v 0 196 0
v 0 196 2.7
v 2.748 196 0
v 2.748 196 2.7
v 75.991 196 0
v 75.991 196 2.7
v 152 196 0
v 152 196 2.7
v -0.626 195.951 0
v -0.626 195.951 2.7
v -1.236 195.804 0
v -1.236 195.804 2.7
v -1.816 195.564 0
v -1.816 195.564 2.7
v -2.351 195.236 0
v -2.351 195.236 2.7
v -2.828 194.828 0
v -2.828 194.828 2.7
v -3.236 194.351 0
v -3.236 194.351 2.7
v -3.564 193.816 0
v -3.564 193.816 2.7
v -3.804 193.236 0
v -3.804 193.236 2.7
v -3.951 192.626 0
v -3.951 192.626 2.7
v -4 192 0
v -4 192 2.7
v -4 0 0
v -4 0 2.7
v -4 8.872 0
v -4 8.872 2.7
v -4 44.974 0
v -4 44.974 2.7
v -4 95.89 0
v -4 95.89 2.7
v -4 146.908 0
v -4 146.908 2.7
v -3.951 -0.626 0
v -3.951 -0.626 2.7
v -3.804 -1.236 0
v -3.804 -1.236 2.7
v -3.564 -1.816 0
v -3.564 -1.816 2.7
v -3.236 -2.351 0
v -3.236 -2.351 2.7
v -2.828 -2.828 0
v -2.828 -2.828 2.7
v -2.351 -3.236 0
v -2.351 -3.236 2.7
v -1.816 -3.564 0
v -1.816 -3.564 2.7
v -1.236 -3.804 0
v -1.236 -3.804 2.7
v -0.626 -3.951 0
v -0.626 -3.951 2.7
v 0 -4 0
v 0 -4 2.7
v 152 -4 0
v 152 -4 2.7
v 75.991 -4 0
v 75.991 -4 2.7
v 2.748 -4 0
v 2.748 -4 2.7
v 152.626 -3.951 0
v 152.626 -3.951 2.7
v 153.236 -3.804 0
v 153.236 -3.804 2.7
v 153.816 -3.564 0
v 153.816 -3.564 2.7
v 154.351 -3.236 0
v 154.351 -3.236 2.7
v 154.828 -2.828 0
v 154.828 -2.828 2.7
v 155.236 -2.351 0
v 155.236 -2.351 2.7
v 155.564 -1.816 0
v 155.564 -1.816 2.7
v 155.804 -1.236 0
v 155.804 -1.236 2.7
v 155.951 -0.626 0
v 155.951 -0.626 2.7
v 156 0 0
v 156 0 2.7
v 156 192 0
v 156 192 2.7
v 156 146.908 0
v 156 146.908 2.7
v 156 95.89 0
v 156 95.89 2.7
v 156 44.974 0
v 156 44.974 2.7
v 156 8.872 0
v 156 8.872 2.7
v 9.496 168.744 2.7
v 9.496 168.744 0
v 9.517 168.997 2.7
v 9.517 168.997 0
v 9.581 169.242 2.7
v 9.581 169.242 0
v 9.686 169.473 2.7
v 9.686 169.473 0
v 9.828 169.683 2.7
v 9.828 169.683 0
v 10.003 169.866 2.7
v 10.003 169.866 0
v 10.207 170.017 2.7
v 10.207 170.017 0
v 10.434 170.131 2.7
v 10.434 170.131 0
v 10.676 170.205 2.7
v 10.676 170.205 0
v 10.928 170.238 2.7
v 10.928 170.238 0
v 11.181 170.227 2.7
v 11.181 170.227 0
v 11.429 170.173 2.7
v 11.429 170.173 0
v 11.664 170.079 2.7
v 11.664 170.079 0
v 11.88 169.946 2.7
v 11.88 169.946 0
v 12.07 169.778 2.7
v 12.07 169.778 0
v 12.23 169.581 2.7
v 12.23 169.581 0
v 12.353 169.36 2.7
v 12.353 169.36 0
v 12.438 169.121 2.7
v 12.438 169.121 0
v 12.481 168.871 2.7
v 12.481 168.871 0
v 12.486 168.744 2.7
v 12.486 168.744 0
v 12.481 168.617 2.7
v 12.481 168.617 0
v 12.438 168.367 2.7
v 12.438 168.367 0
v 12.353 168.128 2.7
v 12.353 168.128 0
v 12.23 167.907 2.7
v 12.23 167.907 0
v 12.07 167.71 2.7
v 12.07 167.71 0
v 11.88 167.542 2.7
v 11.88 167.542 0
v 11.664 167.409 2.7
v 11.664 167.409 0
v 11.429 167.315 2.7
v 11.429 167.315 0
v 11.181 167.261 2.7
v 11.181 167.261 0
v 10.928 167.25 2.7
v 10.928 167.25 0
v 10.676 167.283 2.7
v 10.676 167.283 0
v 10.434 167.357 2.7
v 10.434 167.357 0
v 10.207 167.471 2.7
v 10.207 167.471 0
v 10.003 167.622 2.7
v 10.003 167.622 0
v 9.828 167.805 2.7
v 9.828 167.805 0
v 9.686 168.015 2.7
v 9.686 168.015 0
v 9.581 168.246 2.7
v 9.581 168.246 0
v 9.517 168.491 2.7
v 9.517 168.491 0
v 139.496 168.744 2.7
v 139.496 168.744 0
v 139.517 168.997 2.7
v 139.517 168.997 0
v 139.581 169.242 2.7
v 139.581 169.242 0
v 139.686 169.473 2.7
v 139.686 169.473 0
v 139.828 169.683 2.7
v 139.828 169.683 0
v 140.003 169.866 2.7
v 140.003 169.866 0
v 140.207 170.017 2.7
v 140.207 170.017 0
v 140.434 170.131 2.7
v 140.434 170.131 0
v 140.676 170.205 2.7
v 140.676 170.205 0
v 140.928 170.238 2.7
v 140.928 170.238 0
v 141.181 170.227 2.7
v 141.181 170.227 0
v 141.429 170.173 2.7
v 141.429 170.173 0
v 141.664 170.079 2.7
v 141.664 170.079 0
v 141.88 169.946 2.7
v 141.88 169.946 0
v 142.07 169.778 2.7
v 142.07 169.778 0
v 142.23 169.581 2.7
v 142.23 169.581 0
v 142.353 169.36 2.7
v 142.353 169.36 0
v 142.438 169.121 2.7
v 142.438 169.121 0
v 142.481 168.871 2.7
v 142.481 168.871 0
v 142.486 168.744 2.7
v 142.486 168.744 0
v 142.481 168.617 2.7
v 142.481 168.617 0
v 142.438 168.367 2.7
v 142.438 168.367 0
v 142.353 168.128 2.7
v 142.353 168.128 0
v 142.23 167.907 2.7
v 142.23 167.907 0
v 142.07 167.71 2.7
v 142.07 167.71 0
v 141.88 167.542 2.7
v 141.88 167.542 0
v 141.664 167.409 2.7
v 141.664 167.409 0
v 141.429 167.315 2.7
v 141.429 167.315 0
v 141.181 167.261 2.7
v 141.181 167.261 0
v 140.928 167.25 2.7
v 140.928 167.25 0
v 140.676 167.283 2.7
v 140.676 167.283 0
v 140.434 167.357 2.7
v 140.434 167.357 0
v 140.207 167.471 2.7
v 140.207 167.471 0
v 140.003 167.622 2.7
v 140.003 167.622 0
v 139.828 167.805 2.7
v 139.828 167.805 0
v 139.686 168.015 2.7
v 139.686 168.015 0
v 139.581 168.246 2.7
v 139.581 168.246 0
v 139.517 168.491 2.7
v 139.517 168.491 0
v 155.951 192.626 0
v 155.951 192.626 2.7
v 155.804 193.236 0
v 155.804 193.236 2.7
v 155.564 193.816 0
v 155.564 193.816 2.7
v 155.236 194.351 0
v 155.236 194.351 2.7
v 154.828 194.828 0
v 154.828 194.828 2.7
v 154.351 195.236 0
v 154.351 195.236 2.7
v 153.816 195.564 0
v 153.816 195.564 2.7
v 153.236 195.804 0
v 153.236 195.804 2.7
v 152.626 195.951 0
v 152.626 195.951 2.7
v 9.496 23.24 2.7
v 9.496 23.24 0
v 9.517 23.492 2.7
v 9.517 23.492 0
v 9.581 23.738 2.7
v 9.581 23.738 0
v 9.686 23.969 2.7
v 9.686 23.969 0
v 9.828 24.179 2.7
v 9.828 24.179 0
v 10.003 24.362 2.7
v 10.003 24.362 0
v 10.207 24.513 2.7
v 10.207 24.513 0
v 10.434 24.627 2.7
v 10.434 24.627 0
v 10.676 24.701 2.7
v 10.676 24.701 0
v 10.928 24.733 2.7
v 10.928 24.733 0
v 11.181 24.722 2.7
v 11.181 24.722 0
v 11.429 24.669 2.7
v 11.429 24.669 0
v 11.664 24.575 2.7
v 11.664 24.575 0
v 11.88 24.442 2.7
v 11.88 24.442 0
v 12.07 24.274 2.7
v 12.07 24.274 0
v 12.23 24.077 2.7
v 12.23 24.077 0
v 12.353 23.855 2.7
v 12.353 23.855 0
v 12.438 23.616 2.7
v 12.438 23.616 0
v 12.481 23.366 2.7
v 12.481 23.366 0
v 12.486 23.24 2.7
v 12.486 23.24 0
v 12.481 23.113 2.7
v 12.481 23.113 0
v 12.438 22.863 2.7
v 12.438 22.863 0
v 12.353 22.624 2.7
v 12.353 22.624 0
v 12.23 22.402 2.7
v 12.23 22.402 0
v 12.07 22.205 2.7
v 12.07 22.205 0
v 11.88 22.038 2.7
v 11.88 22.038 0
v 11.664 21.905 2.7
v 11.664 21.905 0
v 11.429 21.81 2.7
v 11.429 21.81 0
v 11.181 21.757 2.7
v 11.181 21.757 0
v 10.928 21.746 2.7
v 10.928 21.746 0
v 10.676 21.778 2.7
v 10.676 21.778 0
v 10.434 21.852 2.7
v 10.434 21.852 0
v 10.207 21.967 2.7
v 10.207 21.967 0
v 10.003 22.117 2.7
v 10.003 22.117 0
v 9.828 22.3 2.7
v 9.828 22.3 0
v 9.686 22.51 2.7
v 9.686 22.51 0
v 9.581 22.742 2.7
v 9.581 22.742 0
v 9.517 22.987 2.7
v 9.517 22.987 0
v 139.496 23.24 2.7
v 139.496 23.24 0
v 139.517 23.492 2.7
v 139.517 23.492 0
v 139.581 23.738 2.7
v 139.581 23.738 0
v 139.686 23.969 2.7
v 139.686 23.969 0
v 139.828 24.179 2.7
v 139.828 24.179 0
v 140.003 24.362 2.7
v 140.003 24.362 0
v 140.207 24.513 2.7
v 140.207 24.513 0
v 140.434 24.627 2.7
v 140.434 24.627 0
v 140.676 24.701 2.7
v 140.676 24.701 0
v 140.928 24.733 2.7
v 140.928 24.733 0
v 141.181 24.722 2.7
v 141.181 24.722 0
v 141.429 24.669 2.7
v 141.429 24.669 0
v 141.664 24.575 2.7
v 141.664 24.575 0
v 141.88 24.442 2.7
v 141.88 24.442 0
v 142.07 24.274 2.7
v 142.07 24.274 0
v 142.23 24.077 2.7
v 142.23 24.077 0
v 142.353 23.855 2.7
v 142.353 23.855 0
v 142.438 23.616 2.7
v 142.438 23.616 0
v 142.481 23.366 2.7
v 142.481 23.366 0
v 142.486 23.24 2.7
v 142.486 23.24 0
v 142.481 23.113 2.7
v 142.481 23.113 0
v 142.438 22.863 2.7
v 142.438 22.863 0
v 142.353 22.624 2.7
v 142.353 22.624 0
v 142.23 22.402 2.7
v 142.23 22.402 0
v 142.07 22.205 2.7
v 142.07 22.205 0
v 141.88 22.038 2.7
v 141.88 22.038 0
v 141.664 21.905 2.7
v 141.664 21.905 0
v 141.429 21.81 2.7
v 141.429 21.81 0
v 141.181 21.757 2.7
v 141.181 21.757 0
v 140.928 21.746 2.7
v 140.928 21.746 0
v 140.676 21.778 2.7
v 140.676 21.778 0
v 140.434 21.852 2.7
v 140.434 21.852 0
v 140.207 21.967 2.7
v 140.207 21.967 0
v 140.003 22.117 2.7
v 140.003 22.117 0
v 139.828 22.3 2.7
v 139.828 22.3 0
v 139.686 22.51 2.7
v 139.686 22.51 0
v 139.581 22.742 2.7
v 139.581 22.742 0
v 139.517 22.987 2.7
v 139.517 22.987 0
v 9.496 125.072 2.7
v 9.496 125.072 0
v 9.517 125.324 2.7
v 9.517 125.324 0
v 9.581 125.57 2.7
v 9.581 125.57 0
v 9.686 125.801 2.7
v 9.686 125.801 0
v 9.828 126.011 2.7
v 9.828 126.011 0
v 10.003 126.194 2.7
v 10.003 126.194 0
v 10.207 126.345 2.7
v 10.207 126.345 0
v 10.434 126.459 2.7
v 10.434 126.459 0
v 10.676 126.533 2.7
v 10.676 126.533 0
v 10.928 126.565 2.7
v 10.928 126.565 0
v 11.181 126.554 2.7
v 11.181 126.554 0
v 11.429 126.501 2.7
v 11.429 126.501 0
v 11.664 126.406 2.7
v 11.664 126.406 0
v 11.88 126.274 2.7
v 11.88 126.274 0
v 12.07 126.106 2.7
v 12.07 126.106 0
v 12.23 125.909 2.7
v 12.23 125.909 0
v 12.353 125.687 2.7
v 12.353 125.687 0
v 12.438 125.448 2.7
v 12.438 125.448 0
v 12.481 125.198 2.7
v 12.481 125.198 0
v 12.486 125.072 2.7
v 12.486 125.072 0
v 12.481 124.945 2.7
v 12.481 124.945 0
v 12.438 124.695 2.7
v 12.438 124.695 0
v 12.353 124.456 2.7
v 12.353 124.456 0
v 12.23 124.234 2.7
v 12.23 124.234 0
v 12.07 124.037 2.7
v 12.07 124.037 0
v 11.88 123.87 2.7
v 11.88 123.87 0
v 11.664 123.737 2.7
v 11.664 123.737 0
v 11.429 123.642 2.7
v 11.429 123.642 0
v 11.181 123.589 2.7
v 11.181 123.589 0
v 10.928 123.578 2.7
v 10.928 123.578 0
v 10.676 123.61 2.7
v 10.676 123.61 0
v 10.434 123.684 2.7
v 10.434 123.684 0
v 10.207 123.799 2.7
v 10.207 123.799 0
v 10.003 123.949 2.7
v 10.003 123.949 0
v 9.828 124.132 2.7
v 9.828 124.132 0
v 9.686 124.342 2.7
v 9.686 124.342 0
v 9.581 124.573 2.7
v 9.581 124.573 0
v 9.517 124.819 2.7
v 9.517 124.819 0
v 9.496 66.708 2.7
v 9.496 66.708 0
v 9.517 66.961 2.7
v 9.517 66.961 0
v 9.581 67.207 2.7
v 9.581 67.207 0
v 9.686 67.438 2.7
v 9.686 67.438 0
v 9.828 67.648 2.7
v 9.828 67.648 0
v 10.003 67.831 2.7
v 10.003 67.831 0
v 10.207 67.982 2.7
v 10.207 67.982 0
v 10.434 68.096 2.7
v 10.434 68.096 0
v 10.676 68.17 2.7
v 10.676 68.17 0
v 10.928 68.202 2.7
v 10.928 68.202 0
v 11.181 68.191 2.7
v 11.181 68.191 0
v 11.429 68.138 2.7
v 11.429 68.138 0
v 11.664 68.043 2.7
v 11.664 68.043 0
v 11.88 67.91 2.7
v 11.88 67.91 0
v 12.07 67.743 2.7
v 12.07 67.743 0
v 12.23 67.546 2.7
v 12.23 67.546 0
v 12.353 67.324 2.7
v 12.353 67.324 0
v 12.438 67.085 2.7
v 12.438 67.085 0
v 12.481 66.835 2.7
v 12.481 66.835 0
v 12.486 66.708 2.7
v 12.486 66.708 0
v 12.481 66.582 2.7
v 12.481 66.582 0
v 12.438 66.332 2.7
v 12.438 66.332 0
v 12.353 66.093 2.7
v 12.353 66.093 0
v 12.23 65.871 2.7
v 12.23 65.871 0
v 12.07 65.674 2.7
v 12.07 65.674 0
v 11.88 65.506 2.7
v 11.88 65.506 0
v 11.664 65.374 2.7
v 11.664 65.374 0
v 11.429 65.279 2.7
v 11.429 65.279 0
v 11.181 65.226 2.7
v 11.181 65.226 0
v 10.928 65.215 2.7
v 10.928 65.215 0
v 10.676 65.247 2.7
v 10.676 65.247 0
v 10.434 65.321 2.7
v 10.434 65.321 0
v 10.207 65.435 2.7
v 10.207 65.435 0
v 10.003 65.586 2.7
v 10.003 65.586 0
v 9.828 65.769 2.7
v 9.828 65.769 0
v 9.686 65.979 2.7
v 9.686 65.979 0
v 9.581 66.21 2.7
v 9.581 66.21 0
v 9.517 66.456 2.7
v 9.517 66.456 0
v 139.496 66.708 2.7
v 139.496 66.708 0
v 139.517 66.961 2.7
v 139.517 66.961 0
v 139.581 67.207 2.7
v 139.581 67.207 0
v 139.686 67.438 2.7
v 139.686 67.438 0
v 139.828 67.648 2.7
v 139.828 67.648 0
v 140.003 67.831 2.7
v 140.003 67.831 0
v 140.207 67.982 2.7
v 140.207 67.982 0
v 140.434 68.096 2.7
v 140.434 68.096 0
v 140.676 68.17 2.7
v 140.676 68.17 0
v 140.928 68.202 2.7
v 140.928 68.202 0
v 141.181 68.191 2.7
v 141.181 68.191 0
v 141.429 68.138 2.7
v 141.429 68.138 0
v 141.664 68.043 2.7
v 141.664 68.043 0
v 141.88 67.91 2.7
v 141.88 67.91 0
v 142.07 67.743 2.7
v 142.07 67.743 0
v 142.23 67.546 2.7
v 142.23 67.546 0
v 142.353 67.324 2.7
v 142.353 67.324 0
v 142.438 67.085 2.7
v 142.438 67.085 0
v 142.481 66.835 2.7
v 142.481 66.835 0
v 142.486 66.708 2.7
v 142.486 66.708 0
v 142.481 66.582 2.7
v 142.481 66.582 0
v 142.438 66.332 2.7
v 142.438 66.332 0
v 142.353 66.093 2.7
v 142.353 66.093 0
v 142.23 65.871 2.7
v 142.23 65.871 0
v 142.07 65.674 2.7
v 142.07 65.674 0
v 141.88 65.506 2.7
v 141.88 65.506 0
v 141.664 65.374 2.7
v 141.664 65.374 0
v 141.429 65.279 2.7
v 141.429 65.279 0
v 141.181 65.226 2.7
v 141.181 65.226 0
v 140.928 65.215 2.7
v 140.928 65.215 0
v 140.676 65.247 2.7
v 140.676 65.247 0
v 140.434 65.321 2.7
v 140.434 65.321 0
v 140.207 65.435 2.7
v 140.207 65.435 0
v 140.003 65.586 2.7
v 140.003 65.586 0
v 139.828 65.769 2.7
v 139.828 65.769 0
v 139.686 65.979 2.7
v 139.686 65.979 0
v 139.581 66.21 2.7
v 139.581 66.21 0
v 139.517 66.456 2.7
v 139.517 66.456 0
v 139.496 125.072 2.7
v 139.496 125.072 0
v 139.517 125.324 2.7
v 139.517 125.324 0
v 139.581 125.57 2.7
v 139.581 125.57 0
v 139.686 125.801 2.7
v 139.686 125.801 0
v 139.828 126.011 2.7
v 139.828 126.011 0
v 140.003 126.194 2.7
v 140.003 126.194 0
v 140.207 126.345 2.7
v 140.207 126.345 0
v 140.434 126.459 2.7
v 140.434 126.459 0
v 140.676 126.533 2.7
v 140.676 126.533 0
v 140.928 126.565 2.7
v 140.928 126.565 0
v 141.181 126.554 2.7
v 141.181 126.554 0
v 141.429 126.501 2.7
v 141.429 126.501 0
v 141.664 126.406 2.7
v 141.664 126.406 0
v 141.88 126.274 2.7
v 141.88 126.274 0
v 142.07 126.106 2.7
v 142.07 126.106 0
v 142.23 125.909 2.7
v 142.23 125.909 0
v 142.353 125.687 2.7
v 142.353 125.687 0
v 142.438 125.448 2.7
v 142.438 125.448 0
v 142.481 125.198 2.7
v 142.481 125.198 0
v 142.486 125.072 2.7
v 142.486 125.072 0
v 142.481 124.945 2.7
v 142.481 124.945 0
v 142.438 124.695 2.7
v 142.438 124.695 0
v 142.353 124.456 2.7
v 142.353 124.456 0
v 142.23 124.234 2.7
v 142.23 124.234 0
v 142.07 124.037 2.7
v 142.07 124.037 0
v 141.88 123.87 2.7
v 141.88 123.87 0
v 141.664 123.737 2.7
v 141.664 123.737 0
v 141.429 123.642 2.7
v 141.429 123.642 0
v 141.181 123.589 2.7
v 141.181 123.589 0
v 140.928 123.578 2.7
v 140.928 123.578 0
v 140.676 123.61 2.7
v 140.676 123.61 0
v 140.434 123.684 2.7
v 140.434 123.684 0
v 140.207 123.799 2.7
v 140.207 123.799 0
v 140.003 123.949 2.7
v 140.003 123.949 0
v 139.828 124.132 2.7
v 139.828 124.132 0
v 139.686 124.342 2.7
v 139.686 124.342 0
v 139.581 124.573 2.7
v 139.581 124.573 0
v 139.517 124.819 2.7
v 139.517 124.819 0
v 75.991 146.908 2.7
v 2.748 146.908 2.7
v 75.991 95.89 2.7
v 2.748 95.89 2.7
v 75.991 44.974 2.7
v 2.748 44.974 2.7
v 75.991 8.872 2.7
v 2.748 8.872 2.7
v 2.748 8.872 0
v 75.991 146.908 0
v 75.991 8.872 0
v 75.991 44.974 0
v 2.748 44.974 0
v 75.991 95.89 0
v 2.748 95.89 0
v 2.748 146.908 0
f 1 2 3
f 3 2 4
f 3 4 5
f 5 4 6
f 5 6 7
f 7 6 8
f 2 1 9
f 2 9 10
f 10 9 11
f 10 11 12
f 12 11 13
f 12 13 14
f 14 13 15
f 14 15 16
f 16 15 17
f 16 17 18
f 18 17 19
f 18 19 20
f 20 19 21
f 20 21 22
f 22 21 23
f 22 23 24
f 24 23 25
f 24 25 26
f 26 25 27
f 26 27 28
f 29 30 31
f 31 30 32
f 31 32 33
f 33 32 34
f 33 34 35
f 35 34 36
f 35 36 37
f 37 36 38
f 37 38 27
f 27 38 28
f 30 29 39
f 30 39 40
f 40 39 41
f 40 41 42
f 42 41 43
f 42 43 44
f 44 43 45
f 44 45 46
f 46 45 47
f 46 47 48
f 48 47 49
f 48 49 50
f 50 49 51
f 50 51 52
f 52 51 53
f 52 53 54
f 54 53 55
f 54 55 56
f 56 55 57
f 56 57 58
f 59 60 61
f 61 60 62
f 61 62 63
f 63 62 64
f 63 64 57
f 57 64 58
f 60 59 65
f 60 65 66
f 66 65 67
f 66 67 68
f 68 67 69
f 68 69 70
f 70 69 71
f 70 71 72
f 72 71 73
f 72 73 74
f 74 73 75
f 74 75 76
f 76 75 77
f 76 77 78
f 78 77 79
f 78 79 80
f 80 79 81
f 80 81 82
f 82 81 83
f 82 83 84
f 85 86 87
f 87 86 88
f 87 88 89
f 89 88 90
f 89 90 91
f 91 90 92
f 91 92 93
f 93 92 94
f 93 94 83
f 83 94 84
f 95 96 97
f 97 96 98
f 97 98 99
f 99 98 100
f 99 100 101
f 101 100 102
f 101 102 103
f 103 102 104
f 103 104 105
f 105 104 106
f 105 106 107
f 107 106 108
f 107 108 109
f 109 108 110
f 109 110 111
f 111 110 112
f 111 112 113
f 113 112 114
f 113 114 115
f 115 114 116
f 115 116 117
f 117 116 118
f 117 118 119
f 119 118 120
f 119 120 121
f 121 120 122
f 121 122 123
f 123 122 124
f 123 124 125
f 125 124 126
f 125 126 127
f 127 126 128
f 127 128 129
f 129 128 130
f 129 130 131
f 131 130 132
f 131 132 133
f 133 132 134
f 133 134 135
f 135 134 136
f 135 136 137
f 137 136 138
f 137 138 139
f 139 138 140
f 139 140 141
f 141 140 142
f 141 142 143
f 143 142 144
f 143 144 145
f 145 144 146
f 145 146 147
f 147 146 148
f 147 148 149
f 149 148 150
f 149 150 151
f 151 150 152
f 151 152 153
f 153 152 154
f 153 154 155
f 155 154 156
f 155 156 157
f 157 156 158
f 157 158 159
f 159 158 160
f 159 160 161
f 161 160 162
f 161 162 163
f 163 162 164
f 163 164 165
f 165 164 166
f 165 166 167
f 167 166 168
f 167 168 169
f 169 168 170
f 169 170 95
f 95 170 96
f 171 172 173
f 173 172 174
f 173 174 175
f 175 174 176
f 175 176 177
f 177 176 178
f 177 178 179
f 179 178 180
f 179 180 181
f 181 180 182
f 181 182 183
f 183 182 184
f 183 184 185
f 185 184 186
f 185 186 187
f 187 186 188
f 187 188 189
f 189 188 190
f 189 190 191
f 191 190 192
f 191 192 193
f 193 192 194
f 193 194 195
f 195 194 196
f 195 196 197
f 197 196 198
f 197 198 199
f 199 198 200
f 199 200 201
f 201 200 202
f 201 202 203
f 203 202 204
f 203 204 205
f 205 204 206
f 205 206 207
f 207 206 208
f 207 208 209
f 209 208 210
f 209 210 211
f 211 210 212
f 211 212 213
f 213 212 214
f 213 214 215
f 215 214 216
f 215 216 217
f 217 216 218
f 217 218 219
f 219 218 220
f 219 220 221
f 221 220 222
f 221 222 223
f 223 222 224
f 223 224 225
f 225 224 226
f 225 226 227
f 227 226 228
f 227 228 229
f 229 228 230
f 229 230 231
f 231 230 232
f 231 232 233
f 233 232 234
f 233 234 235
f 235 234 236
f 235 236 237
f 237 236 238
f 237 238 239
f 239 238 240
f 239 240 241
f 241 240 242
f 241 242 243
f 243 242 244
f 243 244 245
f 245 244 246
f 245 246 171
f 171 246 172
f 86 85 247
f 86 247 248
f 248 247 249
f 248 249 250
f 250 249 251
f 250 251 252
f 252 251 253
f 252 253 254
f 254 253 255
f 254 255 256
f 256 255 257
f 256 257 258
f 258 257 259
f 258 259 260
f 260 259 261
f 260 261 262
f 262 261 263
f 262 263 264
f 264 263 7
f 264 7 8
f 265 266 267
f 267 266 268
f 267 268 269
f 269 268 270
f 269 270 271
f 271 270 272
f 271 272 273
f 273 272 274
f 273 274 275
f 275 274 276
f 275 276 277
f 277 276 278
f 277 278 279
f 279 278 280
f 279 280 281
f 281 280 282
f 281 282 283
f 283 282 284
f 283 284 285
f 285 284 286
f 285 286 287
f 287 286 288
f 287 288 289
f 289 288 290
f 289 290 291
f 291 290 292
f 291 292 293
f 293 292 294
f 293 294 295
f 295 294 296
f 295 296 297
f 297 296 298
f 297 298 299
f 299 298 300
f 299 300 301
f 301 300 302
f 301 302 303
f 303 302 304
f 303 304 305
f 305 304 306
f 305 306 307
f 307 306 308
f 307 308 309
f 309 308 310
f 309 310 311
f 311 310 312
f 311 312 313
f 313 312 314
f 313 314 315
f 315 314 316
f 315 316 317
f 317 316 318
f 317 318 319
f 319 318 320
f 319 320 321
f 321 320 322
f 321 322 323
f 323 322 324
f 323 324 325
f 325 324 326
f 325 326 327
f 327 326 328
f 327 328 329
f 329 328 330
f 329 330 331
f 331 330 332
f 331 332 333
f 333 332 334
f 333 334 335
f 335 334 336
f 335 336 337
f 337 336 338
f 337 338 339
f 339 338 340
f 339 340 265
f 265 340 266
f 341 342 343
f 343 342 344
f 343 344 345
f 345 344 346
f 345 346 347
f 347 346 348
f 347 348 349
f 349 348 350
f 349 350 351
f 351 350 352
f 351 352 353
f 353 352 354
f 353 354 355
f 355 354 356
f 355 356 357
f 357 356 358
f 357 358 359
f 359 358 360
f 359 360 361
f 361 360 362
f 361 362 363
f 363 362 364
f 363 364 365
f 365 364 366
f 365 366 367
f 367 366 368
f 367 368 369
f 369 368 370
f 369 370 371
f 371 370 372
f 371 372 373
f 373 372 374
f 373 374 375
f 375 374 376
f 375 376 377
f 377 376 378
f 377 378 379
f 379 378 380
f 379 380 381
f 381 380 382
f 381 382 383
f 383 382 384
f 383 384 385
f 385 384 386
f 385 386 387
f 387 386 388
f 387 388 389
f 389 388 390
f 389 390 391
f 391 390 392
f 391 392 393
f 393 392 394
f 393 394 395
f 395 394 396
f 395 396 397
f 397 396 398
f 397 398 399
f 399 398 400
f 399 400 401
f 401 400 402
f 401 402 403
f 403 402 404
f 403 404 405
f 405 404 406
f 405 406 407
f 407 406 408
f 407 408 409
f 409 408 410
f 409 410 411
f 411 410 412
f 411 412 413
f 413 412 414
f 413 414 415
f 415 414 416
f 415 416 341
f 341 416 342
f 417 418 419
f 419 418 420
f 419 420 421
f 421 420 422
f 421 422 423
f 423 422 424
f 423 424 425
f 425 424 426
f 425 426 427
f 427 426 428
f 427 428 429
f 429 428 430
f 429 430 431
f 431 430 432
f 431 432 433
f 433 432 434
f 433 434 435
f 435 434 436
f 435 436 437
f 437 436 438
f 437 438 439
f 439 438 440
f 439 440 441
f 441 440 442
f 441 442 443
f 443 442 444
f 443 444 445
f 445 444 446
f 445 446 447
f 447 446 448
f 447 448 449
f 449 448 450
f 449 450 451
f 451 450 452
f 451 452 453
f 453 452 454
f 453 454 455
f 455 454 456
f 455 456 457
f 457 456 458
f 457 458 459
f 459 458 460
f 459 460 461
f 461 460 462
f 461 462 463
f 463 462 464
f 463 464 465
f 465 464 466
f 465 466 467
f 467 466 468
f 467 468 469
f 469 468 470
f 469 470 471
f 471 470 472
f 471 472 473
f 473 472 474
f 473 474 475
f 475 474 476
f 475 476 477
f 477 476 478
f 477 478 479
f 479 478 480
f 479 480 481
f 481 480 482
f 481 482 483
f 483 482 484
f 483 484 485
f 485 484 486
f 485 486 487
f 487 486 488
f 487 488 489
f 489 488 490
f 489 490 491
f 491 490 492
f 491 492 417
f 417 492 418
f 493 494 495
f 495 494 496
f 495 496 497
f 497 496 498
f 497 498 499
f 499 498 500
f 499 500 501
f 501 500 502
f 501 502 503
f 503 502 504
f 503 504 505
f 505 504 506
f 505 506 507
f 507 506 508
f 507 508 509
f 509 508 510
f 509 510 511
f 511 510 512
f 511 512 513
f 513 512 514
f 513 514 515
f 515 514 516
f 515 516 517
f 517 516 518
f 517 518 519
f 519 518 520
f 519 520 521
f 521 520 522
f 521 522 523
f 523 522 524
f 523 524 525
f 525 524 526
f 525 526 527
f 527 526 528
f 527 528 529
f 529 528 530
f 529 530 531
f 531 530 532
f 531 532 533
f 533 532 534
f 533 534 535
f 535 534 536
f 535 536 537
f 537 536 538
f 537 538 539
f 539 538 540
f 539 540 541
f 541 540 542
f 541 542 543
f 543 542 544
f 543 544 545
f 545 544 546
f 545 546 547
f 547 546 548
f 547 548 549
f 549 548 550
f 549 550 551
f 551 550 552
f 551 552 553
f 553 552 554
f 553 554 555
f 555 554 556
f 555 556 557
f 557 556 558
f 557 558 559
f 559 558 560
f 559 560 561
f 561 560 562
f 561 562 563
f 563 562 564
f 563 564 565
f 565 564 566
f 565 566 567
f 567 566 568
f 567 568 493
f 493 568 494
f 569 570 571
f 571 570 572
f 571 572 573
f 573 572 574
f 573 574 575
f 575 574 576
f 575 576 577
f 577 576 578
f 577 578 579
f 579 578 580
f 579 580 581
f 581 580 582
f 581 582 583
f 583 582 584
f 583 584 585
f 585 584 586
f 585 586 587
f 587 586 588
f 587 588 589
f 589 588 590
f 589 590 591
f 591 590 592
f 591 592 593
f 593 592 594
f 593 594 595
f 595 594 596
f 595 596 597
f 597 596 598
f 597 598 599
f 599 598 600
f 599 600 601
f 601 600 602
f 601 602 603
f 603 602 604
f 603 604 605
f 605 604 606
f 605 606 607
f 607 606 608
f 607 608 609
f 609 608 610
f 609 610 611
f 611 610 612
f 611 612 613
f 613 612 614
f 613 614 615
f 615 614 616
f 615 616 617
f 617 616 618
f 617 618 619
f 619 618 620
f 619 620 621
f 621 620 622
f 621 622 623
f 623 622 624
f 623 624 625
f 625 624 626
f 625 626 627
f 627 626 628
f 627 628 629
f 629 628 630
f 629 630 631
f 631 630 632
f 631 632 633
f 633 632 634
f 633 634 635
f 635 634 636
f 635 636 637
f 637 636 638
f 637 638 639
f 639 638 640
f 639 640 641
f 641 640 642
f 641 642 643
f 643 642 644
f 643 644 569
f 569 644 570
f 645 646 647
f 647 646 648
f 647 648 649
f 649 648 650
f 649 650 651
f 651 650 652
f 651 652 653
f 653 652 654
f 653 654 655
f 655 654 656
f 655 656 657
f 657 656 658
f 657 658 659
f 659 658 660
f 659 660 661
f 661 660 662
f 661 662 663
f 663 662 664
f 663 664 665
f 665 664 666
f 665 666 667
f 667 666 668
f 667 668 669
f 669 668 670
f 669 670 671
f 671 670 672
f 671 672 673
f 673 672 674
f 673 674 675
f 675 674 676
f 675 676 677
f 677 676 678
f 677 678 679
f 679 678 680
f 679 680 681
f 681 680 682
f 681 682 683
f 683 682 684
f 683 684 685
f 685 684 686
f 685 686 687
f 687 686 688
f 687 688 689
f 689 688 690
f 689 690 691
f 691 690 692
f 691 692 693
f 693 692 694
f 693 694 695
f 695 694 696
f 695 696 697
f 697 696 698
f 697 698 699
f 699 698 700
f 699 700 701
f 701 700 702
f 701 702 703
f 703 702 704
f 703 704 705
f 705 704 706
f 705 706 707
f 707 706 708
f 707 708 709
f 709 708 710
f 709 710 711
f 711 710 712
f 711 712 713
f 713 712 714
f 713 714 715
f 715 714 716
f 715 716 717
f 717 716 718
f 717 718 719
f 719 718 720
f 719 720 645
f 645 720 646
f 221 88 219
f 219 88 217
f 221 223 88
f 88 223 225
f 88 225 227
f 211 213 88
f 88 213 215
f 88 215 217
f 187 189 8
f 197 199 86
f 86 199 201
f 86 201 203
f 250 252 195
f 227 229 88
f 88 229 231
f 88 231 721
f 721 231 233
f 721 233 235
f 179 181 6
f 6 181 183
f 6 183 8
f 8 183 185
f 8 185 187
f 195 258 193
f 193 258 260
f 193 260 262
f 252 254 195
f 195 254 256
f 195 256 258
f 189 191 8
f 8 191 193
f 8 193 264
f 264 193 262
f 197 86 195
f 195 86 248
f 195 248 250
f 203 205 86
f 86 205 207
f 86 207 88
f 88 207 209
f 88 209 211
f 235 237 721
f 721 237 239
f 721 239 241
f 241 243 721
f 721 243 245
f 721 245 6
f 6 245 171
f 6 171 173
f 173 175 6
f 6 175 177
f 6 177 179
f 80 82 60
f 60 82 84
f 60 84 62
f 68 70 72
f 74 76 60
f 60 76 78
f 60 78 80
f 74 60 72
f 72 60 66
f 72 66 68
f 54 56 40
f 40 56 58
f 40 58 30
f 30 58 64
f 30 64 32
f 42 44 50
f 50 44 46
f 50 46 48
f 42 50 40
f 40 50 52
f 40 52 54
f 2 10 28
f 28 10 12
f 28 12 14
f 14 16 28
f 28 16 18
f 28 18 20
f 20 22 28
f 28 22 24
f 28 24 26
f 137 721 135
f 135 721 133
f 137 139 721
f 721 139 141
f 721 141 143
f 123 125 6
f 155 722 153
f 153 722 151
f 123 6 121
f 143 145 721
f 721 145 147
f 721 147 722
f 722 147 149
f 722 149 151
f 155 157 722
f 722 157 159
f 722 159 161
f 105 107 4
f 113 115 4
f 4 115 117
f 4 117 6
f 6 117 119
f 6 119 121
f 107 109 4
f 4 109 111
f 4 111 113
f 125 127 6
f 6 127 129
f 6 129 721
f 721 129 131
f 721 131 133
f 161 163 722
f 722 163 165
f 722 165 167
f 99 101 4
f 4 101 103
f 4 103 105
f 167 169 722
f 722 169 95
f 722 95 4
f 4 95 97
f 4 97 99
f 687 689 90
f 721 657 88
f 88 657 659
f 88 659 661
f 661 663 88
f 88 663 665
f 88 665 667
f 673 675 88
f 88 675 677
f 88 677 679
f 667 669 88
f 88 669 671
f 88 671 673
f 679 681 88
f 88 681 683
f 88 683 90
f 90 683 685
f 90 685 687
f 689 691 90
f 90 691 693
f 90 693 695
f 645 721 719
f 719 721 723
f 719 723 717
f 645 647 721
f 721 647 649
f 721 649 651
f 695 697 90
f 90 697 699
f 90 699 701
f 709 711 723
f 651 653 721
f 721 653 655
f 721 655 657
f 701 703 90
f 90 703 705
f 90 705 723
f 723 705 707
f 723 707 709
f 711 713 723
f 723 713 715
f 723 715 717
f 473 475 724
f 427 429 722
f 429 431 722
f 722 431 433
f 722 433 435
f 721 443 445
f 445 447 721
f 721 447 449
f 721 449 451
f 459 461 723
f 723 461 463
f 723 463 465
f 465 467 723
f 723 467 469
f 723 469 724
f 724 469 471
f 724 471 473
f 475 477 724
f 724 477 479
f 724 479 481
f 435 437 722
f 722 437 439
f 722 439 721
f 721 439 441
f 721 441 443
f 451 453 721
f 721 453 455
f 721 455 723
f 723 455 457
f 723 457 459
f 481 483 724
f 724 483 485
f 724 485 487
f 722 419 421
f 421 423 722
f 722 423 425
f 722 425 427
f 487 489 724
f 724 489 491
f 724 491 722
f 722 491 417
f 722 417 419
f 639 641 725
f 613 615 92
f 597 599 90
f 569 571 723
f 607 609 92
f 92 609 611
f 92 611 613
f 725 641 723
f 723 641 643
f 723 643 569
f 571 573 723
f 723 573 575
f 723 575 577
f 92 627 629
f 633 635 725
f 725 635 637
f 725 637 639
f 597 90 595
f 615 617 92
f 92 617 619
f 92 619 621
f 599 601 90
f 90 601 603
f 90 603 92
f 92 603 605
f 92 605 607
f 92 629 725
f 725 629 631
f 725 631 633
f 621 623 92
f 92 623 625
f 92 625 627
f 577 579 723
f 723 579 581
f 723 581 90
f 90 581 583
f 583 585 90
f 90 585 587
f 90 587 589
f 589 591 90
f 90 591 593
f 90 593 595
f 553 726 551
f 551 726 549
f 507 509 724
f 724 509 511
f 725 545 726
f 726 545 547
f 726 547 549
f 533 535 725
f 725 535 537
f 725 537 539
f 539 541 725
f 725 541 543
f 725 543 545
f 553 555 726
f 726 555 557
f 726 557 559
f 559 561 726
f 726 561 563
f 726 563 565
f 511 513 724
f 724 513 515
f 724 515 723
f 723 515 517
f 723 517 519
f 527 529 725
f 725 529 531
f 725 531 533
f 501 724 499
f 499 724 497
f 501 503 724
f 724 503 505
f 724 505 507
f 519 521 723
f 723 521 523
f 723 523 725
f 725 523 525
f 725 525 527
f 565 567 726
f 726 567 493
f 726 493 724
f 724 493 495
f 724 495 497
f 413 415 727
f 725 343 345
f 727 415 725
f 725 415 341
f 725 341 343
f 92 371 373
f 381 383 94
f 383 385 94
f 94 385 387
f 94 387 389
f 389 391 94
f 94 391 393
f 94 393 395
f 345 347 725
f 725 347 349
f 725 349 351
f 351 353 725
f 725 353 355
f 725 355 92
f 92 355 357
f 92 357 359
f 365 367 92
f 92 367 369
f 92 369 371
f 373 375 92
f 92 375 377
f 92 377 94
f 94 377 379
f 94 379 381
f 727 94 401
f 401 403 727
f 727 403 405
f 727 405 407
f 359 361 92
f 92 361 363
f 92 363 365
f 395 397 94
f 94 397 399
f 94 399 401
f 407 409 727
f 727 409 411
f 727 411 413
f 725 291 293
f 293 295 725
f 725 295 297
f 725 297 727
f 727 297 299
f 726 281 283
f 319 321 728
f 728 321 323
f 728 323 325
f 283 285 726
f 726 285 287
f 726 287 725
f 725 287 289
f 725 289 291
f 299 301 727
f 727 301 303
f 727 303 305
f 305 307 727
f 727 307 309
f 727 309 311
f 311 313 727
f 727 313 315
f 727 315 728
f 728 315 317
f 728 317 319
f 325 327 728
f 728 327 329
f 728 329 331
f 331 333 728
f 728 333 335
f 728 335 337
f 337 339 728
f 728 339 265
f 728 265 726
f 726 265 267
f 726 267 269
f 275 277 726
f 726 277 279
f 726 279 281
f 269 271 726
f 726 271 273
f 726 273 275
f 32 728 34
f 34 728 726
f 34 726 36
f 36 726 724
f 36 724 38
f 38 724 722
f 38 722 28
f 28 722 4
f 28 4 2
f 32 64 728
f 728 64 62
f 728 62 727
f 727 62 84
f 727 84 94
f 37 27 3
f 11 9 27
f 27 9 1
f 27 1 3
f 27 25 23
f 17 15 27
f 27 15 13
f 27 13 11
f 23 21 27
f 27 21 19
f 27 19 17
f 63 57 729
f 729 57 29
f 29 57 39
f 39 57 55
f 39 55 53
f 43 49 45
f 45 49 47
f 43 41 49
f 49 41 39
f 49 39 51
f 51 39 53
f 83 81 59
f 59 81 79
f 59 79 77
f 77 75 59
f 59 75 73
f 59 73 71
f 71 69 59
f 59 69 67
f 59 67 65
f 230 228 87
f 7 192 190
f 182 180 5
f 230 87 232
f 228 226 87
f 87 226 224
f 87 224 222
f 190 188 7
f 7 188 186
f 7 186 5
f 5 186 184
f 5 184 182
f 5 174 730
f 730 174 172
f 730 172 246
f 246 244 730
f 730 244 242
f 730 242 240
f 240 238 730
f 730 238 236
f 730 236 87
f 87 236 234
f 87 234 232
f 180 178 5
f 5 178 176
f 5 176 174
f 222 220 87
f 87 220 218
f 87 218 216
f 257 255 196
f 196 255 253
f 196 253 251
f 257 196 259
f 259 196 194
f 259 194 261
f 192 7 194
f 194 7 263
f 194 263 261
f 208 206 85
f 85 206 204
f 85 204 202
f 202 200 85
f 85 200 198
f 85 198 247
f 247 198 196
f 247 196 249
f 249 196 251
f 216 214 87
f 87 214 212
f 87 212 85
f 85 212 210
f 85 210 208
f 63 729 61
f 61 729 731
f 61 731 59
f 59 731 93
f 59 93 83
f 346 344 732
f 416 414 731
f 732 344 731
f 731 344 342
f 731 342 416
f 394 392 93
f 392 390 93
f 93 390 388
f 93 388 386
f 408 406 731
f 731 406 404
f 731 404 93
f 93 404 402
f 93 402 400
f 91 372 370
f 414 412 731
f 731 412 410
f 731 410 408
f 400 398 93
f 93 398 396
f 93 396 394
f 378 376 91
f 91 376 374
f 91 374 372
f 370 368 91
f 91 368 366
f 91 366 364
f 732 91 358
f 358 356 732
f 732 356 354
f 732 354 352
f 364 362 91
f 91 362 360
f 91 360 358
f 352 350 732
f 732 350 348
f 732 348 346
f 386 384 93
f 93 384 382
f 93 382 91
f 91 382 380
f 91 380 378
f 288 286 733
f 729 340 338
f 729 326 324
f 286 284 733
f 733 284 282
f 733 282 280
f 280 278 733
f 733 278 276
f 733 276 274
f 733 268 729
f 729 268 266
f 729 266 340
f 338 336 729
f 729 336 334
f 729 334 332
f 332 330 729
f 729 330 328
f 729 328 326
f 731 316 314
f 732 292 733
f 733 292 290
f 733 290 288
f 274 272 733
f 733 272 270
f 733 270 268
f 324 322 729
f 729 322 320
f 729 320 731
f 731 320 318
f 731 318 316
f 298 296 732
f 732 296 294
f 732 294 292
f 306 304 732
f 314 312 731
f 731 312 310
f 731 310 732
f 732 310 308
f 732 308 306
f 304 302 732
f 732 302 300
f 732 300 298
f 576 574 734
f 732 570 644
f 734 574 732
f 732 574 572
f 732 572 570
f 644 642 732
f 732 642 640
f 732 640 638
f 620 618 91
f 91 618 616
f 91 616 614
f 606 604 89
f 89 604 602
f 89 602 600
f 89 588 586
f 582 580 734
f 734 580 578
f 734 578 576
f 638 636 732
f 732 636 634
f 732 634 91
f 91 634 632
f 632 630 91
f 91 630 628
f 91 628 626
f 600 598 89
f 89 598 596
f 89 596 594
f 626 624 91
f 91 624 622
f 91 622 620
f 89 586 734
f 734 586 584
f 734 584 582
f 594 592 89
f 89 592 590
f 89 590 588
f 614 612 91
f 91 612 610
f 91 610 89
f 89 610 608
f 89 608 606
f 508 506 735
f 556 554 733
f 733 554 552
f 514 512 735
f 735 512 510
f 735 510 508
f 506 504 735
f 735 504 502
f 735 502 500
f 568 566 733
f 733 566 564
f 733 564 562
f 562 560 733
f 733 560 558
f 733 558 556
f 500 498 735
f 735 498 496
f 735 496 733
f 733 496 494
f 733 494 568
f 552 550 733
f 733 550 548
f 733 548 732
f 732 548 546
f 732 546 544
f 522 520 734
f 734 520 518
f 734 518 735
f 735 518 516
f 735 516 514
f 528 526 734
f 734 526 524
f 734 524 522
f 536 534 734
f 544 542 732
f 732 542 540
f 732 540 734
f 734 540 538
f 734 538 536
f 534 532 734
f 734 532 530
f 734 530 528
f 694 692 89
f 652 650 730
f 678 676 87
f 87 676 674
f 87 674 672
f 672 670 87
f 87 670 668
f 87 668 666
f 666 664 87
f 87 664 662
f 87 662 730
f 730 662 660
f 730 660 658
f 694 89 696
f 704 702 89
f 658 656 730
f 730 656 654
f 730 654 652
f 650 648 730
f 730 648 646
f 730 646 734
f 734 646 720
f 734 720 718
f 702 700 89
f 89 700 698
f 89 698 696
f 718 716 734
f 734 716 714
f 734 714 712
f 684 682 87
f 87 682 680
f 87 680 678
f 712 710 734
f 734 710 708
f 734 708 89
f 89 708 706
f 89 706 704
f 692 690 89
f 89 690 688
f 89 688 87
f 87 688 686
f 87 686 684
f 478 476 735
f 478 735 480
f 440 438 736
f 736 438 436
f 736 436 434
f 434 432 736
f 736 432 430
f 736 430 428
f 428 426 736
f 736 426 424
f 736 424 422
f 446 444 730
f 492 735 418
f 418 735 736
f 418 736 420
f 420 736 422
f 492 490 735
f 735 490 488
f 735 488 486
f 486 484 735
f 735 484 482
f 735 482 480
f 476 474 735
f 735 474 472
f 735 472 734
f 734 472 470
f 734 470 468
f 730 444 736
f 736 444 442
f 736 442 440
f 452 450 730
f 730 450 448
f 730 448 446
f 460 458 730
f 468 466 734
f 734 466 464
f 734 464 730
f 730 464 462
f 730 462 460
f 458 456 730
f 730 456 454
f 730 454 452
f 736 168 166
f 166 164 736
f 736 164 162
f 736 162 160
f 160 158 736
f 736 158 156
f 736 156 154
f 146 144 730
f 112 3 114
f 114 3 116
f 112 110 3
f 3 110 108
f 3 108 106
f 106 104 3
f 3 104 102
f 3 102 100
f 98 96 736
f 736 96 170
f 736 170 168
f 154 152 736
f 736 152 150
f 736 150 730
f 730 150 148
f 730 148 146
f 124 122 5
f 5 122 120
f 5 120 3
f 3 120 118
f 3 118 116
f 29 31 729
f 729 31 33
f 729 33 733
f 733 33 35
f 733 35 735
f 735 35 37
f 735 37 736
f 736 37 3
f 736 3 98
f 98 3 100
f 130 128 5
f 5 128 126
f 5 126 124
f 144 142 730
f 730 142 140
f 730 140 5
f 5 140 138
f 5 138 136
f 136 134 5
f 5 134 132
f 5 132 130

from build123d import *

# Parameters (mm, degrees)
SKETCH1_R           = 1.495
SKETCH1_R_2         = 9.688899653
BOSS_EXTRUDE1_DEPTH = 2.7


with BuildPart() as part:
    # Sketch1 → Boss-Extrude1 (new body)
    # profile 1 of 5: a face of its own
    with BuildSketch(Plane.XY):
        with BuildLine():
            Line((0, 196), (152, 196))
            ThreePointArc((152, 196), (154.828427125, 194.828427125), (156, 192))
            Line((156, 192), (156, 0))
            ThreePointArc((156, 0), (154.828427125, -2.828427125), (152, -4))
            Line((152, -4), (0, -4))
            ThreePointArc((0, -4), (-2.828427125, -2.828427125), (-4, 0))
            Line((-4, 0), (-4, 192))
            ThreePointArc((-4, 192), (-2.828427125, 194.828427125), (0, 196))
        make_face()
        with Locations(Location((140.990956122, 66.70847361, 0), (0, 0, 180))):
            Circle(SKETCH1_R, mode=Mode.SUBTRACT)
        with Locations(Location((10.990956122, 66.70847361, 0), (0, 0, 180))):
            Circle(SKETCH1_R, mode=Mode.SUBTRACT)
        with Locations(Location((10.990956122, 125.071533952, 0), (0, 0, 180))):
            Circle(SKETCH1_R, mode=Mode.SUBTRACT)
        with Locations(Location((140.990956122, 23.239588183, 0), (0, 0, 180))):
            Circle(SKETCH1_R, mode=Mode.SUBTRACT)
        with Locations(Location((10.990956122, 23.239588183, 0), (0, 0, 180))):
            Circle(SKETCH1_R, mode=Mode.SUBTRACT)
        with Locations((141, 11)):
            Circle(SKETCH1_R_2, mode=Mode.SUBTRACT)
        with Locations((11, 11)):
            Circle(SKETCH1_R_2, mode=Mode.SUBTRACT)
        with Locations((141, 181)):
            Circle(SKETCH1_R_2, mode=Mode.SUBTRACT)
        with Locations((11, 181)):
            Circle(SKETCH1_R_2, mode=Mode.SUBTRACT)
        with Locations(Location((140.990956122, 168.744033213, 0), (0, 0, 180))):
            Circle(SKETCH1_R, mode=Mode.SUBTRACT)
        with Locations(Location((10.990956122, 168.744033213, 0), (0, 0, 180))):
            Circle(SKETCH1_R, mode=Mode.SUBTRACT)
        with Locations(Location((140.990956122, 125.071533952, 0), (0, 0, 180))):
            Circle(SKETCH1_R, mode=Mode.SUBTRACT)
    # profile 2 of 5: a face of its own
    with BuildSketch(Plane.XY):
        with Locations((11, 181)):
            Circle(SKETCH1_R_2)
    # profile 3 of 5: a face of its own
    with BuildSketch(Plane.XY):
        with Locations((141, 181)):
            Circle(SKETCH1_R_2)
    # profile 4 of 5: a face of its own
    with BuildSketch(Plane.XY):
        with Locations((141, 11)):
            Circle(SKETCH1_R_2)
    # profile 5 of 5: a face of its own
    with BuildSketch(Plane.XY):
        with Locations((11, 11)):
            Circle(SKETCH1_R_2)
    extrude(amount=BOSS_EXTRUDE1_DEPTH)


solid = part.part
